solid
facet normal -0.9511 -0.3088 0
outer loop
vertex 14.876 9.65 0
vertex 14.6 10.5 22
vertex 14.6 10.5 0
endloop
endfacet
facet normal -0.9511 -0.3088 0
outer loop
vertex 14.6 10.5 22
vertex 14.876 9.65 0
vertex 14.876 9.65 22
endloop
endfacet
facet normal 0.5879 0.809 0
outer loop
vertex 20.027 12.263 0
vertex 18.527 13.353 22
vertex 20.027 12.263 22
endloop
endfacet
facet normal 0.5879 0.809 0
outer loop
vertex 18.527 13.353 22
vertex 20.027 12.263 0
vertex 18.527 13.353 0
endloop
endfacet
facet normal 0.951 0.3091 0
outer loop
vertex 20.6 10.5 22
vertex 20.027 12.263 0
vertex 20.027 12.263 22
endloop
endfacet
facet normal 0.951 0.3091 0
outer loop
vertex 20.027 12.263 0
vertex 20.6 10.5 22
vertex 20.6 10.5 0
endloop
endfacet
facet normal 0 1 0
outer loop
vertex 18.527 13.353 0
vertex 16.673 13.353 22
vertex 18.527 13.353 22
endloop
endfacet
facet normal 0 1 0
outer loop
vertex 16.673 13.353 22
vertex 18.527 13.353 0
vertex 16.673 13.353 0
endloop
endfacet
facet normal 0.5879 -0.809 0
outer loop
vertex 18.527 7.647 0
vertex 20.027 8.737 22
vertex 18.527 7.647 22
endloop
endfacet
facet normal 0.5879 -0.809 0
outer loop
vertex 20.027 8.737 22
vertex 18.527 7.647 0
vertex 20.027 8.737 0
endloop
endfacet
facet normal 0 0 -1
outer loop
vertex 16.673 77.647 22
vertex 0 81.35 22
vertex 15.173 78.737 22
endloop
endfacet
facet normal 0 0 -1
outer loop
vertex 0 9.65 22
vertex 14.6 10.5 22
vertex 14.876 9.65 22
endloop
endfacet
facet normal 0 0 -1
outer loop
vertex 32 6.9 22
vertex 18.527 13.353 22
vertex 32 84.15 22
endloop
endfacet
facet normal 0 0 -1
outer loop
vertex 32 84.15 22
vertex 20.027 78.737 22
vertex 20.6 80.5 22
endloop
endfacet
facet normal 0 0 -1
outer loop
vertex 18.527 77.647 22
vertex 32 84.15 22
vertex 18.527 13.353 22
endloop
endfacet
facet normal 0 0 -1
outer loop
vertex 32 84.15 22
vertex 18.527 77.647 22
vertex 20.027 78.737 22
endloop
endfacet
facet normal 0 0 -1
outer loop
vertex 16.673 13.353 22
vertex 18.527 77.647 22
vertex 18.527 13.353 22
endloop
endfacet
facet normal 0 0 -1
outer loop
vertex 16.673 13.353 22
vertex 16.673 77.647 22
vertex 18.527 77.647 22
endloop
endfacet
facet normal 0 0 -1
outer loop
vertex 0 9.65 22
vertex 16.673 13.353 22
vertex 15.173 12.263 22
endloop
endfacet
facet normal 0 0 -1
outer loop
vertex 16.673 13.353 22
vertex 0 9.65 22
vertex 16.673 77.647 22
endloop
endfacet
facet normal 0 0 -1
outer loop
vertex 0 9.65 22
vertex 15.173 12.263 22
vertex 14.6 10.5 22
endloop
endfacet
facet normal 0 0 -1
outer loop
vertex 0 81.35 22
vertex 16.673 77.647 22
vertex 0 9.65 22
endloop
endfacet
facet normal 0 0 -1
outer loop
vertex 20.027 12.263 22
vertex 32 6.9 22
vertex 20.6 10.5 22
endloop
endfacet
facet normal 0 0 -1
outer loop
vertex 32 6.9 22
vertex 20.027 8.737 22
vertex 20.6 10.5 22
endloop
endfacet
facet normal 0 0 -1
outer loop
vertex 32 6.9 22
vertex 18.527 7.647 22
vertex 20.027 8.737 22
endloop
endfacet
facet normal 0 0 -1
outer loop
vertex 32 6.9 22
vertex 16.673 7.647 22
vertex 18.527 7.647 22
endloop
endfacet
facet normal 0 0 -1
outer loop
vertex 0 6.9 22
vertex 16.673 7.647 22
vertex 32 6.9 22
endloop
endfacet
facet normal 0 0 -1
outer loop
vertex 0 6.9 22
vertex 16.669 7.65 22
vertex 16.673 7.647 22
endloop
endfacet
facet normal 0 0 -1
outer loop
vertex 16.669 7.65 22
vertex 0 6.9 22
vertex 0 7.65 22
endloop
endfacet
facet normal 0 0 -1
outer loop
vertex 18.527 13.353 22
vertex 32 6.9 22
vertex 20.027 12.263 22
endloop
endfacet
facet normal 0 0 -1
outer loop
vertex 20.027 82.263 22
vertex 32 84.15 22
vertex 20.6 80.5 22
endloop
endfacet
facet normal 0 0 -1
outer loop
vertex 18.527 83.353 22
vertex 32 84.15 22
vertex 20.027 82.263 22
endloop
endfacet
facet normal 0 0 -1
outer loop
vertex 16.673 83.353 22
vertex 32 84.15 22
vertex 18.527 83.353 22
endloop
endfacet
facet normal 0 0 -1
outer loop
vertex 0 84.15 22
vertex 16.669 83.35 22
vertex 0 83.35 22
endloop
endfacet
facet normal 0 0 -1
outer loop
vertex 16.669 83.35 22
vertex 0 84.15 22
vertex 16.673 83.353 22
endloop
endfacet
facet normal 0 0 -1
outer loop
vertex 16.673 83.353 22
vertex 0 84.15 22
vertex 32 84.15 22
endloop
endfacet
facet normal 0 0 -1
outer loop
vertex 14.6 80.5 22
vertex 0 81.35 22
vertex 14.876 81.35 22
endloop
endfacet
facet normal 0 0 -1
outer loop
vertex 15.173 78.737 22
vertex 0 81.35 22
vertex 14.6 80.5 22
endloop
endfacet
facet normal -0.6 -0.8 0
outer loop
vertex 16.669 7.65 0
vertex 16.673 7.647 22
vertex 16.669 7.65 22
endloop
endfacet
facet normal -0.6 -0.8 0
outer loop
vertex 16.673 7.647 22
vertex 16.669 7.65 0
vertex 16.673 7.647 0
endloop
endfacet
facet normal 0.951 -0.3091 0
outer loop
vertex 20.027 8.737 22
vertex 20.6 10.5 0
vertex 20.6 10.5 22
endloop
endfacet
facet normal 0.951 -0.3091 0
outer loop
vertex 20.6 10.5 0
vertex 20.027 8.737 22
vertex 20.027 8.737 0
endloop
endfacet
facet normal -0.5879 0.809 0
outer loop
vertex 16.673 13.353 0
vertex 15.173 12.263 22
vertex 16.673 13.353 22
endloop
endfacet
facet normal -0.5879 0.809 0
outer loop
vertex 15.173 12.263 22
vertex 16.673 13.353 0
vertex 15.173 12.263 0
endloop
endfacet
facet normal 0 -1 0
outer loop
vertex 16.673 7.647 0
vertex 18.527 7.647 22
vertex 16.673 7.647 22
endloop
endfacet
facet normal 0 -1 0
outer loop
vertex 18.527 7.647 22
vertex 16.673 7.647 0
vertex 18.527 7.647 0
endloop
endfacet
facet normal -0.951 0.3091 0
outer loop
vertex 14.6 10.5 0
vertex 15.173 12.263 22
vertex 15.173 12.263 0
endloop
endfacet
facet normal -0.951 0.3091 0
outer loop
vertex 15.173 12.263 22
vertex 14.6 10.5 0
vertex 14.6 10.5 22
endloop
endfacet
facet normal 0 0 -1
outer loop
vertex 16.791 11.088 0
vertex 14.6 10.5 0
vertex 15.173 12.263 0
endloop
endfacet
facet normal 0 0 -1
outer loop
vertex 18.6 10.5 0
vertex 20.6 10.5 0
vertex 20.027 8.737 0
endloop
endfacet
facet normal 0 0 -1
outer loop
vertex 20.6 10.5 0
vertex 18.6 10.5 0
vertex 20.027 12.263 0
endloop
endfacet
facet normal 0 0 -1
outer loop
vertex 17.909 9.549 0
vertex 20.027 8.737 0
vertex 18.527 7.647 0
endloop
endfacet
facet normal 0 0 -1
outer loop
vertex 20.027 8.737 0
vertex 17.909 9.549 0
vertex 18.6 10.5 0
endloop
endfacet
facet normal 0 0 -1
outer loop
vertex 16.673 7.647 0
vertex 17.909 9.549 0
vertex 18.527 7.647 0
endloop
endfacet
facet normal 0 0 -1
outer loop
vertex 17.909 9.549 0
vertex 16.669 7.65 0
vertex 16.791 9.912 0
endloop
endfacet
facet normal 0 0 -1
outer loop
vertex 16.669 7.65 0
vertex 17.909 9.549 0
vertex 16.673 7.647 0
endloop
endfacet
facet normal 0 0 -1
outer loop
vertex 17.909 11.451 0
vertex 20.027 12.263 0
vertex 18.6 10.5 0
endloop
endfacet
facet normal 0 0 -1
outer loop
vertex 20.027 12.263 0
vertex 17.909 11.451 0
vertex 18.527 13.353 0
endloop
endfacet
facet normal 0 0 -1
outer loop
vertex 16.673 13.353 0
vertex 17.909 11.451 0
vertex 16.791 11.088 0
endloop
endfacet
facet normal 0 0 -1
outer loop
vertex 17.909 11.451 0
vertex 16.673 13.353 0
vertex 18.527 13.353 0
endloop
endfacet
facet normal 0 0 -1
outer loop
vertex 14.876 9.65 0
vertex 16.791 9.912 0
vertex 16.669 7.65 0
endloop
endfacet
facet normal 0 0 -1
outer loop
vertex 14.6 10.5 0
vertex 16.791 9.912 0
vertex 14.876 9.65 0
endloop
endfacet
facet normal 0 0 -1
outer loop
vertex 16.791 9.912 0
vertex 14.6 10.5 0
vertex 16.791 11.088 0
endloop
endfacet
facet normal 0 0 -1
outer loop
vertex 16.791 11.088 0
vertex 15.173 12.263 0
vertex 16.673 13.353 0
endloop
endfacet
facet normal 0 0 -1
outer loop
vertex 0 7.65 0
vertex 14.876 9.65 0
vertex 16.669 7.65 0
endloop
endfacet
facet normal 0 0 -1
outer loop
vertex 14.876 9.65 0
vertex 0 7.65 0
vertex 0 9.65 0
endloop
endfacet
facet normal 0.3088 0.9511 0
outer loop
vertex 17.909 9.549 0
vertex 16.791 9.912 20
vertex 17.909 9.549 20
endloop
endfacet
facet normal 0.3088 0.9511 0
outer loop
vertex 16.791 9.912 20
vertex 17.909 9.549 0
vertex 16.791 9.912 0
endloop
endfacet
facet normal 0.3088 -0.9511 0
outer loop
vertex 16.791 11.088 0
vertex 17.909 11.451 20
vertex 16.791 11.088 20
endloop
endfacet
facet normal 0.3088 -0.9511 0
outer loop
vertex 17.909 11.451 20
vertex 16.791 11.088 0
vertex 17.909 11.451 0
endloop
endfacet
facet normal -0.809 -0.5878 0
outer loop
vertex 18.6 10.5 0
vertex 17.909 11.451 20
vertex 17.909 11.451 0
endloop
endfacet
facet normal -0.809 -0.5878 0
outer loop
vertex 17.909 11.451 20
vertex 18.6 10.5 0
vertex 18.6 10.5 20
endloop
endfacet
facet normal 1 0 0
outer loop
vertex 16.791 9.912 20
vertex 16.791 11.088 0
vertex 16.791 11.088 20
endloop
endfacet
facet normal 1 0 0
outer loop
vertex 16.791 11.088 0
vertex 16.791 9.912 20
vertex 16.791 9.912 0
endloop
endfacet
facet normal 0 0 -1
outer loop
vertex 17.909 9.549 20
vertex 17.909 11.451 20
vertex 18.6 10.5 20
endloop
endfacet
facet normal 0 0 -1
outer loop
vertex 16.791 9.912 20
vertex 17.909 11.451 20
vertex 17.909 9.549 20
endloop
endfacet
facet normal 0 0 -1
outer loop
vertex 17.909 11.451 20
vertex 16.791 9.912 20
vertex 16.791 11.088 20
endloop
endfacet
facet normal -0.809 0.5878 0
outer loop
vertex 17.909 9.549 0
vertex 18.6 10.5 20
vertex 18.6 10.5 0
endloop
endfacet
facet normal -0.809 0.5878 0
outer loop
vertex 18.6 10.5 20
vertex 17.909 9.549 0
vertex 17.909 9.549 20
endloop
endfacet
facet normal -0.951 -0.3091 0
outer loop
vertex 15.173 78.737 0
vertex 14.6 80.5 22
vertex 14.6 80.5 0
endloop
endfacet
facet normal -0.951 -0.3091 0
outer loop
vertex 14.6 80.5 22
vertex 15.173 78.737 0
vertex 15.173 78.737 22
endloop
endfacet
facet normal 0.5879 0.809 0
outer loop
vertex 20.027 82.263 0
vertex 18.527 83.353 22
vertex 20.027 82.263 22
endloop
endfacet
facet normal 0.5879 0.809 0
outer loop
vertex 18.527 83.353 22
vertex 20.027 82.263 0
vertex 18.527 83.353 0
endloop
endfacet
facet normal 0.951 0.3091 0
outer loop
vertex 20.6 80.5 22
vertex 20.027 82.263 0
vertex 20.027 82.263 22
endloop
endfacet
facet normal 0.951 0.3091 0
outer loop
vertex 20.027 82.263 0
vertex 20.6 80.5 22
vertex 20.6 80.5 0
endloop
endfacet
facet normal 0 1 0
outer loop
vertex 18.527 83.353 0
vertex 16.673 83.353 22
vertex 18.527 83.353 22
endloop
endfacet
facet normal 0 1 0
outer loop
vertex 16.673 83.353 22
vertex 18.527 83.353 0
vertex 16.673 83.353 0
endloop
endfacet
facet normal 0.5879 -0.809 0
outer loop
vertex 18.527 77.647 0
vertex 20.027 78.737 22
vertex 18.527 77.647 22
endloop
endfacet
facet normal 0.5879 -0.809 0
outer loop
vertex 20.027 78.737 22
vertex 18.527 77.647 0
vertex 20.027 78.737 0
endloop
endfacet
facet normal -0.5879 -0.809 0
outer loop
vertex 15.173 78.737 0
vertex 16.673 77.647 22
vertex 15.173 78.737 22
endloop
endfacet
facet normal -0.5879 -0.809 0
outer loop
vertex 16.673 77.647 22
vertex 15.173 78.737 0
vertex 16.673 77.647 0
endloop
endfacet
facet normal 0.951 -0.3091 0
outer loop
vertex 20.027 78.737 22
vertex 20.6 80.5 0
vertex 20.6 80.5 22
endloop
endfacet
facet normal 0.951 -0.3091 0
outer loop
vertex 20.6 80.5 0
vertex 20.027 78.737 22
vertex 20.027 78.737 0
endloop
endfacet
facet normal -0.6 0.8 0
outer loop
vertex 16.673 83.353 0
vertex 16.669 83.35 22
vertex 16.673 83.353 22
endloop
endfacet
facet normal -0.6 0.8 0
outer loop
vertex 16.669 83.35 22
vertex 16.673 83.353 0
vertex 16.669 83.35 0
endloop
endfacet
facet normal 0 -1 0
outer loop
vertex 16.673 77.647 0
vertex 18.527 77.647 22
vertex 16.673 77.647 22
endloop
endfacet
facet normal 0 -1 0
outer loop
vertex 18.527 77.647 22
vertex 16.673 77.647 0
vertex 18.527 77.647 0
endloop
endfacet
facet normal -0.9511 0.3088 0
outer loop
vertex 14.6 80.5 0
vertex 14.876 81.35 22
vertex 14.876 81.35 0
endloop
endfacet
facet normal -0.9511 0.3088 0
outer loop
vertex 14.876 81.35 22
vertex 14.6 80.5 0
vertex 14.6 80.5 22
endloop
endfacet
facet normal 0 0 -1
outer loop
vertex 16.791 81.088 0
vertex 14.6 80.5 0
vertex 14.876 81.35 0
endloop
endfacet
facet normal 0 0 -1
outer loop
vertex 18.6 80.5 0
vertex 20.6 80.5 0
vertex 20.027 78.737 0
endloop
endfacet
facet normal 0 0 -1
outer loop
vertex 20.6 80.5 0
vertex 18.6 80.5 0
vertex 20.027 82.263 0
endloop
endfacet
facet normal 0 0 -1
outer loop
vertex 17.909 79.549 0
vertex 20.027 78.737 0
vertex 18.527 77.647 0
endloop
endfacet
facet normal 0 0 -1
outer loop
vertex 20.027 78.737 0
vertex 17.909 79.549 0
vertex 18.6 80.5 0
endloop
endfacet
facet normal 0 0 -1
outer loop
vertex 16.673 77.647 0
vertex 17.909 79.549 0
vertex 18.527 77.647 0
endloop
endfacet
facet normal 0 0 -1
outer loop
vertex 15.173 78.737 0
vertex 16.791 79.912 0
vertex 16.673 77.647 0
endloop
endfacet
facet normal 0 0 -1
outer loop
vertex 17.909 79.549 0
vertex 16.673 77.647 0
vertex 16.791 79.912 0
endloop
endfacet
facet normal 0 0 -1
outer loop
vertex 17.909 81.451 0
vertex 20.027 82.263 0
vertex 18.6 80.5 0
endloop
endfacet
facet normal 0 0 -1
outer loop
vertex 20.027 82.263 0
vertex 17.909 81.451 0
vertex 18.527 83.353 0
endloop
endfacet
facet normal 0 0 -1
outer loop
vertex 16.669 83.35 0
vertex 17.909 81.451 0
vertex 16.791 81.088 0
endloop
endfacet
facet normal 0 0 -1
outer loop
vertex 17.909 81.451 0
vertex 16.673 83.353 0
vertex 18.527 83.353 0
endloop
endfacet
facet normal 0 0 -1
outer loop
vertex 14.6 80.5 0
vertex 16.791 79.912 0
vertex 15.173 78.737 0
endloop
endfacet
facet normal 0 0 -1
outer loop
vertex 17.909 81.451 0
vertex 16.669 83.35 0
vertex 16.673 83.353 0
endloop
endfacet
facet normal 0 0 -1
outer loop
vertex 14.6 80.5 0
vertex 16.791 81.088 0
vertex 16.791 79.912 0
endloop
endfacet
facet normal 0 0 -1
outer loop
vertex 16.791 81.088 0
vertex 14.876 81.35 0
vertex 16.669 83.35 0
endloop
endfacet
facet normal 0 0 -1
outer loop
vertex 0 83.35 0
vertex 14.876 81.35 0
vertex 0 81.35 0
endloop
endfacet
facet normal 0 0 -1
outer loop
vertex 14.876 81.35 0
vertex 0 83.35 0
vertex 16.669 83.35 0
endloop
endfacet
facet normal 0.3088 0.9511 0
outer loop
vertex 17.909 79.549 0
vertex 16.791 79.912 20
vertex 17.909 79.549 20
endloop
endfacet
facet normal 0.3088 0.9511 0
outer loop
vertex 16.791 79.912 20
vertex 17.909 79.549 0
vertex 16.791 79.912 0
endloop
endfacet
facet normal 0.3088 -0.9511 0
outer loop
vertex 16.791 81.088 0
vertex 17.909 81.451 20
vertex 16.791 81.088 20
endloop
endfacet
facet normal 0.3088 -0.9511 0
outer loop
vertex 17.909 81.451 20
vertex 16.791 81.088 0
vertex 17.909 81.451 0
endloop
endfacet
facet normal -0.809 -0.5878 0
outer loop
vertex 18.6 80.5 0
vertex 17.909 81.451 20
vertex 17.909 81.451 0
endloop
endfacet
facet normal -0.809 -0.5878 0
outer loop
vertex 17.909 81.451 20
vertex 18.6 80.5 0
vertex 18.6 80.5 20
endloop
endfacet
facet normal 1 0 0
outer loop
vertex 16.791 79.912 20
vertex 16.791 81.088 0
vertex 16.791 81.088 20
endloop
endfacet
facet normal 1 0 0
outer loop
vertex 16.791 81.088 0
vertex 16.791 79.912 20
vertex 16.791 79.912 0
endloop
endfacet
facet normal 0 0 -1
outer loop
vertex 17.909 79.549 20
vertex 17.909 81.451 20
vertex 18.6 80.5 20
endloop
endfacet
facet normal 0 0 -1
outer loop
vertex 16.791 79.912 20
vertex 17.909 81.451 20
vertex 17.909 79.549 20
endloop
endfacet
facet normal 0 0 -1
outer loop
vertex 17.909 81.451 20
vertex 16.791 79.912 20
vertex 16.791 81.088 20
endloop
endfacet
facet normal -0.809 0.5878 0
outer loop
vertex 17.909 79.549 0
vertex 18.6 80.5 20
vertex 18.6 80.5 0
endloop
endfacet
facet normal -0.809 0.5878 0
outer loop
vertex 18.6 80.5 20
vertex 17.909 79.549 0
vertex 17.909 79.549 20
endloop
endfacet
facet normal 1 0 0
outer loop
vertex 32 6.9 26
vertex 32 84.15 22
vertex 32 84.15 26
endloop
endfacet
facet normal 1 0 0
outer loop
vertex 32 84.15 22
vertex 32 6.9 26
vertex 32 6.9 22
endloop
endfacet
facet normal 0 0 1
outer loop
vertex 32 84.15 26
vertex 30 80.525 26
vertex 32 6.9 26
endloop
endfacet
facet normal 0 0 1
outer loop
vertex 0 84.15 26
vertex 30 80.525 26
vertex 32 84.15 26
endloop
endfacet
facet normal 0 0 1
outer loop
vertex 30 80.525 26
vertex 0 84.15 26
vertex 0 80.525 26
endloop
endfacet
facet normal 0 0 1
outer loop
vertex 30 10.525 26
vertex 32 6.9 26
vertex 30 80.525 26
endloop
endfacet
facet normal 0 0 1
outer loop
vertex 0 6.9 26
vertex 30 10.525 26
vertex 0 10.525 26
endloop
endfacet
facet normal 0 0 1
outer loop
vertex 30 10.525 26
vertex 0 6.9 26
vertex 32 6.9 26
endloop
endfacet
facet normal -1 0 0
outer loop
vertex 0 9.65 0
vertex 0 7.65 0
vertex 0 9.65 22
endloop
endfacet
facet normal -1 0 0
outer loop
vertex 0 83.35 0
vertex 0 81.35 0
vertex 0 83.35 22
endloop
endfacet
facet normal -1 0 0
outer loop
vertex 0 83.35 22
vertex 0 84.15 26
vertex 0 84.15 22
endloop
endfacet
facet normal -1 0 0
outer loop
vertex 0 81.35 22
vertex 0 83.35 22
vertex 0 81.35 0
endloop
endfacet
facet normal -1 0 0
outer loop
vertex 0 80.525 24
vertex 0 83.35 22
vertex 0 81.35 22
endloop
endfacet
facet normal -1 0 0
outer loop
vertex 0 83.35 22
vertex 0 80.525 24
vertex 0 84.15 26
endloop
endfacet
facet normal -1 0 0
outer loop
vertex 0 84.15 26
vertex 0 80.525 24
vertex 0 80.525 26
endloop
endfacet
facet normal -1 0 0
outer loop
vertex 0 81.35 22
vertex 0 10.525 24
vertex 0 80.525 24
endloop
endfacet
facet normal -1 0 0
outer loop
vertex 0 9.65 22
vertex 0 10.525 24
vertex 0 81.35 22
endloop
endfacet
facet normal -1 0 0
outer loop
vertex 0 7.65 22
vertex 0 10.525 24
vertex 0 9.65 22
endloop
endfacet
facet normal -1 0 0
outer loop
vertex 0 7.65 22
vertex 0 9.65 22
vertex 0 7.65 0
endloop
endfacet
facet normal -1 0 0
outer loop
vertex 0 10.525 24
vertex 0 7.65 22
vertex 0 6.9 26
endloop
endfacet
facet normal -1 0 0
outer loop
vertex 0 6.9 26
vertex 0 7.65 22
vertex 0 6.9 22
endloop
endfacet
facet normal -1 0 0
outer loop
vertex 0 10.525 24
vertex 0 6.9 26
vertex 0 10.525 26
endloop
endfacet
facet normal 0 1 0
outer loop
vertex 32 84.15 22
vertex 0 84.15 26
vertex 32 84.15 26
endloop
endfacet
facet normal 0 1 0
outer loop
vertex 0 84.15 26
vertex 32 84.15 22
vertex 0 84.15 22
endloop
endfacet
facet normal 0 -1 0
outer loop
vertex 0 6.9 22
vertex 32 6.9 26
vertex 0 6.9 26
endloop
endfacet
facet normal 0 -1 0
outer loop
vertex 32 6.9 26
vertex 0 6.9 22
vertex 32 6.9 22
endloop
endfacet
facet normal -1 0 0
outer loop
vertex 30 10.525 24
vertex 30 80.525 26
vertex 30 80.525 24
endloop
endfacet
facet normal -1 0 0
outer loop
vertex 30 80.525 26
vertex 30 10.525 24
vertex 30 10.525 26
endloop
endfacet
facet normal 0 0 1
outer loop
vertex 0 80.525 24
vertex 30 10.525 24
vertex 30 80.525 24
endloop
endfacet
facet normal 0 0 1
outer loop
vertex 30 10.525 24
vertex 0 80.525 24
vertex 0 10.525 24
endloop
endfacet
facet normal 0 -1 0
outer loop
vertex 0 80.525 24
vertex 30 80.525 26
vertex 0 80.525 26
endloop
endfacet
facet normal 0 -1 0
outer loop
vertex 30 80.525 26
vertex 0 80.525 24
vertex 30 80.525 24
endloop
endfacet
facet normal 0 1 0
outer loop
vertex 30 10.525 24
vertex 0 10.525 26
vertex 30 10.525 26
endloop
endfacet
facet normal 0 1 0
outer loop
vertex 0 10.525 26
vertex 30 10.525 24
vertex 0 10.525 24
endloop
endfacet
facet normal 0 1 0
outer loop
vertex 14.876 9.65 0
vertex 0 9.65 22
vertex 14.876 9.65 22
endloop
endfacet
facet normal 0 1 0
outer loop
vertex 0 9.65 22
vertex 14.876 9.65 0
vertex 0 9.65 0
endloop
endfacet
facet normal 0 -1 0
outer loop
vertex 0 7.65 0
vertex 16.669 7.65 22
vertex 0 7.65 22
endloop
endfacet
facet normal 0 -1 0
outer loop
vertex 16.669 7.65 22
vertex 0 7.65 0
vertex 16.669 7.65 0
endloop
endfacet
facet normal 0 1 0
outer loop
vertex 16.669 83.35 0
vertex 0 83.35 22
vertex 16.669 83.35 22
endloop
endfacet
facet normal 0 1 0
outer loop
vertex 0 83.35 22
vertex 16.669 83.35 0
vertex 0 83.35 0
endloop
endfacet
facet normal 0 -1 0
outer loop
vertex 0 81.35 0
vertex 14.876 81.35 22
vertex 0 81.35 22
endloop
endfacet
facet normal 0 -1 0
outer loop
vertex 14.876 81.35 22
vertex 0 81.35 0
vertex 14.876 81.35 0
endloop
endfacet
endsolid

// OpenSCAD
//table support for perfboard at back of 6J1 tupe preamp
//For low impedance headphone driver circuits
//Jenny List 2024, 2025
//CC-BY-SA 4.0

module standOff(){
    difference(){
        cylinder(22,3,3);
        cylinder(20,1.0,1.0); 
    }
}

//standoffs
translate([17.6,10.5,0]) standOff(); 
translate([17.6,80.5,0]) standOff();

//supports
translate([0,7.65,0]) cube([16.72,2,22]); 
translate([0,81.35,0]) cube([16.72,2,22]); 

//table
translate([0,6.9,22]){
    difference(){
        cube([32,77.25,4]);
        translate([0,3.625,2]) cube([30,70,2]);
    }
}
